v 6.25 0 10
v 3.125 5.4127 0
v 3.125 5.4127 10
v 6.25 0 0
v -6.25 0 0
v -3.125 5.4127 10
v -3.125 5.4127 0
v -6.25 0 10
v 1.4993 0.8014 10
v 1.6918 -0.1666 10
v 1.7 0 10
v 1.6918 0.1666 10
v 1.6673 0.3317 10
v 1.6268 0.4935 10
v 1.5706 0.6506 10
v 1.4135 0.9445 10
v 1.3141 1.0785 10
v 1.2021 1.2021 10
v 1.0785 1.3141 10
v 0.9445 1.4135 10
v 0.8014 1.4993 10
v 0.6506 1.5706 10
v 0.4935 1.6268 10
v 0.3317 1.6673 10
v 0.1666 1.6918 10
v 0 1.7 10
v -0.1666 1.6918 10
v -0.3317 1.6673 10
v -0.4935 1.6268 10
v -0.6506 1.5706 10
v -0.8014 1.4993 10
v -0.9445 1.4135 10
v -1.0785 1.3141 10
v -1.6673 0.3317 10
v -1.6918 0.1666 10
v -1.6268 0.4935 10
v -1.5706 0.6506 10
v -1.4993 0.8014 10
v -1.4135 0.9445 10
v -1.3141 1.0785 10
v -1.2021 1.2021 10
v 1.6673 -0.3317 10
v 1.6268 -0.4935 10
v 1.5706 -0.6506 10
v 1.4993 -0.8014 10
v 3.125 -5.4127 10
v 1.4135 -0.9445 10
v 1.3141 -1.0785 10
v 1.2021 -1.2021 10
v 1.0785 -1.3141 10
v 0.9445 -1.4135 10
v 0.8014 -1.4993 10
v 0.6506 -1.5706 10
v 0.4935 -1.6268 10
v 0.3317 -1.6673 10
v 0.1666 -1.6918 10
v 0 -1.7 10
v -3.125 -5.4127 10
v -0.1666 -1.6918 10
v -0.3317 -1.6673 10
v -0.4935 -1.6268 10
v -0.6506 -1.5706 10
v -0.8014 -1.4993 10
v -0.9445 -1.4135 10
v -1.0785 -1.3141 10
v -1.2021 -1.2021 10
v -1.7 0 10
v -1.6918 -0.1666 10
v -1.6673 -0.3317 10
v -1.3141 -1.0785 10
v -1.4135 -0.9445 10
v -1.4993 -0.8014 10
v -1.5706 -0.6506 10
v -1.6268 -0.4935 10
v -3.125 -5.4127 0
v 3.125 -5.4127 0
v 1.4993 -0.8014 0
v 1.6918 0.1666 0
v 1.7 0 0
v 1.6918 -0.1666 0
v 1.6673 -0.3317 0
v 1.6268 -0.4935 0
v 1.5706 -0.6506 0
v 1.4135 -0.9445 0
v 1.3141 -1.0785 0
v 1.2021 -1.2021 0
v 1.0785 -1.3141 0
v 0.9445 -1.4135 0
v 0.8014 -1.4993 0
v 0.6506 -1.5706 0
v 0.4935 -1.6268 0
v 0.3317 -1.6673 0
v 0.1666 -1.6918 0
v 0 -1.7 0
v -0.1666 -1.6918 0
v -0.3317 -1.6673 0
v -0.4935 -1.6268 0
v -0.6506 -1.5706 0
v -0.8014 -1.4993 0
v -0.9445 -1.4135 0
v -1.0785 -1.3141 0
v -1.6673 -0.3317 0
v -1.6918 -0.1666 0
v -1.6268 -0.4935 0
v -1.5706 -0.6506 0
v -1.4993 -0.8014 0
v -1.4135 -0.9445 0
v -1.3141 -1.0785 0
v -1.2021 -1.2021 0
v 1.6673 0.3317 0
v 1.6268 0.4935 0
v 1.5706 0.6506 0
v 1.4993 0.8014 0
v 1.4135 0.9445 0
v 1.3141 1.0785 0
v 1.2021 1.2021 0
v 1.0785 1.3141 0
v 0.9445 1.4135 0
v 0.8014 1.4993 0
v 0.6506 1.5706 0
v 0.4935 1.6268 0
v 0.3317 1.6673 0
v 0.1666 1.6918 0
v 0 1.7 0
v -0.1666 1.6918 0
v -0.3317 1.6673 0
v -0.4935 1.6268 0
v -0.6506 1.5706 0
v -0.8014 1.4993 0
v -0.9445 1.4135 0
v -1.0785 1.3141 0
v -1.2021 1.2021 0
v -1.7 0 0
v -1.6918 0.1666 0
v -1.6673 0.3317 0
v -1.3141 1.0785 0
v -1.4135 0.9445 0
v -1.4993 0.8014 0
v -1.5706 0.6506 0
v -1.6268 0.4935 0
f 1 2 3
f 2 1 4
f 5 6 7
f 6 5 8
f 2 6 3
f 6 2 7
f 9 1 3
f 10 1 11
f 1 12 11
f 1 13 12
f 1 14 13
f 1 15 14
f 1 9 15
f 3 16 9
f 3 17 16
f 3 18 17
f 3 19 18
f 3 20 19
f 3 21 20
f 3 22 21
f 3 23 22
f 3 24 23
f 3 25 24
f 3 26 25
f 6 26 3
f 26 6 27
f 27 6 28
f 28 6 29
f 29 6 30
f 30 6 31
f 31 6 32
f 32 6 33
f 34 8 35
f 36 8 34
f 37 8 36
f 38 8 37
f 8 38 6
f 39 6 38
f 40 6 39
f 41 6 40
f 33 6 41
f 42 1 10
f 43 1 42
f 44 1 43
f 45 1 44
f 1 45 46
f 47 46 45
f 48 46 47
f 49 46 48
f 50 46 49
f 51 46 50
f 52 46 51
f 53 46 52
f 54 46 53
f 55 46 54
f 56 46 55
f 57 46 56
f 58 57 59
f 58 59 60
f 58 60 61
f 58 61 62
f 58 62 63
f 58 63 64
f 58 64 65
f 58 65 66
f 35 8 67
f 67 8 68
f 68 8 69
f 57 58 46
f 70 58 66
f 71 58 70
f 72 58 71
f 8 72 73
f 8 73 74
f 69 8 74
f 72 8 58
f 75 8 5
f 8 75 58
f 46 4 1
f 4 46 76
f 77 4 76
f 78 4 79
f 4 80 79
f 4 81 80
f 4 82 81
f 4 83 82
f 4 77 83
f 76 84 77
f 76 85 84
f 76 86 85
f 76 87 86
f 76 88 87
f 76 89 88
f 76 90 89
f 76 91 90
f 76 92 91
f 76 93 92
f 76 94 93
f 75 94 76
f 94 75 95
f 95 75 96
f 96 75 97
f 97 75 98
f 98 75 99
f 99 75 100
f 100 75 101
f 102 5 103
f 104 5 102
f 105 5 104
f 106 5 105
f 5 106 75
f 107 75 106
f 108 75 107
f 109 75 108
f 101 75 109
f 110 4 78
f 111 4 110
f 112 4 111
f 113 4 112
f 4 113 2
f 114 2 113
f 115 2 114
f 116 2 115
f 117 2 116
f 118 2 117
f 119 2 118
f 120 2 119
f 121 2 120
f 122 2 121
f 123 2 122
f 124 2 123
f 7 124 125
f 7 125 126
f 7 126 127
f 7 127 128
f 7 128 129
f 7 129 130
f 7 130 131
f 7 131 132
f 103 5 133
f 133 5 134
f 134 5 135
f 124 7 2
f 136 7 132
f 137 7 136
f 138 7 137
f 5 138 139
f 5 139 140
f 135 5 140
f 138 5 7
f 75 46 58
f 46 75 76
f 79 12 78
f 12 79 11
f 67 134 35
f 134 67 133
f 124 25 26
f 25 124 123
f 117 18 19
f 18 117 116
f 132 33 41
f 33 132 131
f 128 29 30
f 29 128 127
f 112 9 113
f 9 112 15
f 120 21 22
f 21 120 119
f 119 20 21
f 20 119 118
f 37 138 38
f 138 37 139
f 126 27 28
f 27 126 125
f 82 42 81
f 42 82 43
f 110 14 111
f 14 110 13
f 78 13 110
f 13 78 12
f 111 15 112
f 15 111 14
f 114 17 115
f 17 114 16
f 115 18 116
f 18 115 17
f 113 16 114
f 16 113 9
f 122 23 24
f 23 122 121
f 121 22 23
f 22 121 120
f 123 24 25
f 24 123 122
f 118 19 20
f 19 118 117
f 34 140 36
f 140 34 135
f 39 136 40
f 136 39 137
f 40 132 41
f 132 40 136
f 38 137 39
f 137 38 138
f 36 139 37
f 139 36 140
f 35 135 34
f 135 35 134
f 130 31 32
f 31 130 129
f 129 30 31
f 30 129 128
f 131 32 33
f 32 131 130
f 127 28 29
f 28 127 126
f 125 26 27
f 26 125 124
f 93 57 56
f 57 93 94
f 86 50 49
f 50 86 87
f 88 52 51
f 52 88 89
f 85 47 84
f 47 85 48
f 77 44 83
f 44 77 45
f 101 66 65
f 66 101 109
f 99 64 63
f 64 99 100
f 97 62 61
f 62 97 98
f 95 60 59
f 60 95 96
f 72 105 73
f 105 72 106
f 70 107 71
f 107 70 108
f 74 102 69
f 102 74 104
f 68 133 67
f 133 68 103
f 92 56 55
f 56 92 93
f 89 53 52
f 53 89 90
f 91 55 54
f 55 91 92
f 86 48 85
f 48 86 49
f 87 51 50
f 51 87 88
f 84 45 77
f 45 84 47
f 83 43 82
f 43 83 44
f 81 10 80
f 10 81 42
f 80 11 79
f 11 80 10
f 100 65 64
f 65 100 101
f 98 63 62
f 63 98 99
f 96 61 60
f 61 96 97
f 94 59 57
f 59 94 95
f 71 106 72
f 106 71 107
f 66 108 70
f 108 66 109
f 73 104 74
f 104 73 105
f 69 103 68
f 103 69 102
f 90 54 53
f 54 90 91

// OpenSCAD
difference() {
cylinder(r=6.25, h=10, $fn=6);
cylinder(r=1.7, h=10, $fn=64);
}
